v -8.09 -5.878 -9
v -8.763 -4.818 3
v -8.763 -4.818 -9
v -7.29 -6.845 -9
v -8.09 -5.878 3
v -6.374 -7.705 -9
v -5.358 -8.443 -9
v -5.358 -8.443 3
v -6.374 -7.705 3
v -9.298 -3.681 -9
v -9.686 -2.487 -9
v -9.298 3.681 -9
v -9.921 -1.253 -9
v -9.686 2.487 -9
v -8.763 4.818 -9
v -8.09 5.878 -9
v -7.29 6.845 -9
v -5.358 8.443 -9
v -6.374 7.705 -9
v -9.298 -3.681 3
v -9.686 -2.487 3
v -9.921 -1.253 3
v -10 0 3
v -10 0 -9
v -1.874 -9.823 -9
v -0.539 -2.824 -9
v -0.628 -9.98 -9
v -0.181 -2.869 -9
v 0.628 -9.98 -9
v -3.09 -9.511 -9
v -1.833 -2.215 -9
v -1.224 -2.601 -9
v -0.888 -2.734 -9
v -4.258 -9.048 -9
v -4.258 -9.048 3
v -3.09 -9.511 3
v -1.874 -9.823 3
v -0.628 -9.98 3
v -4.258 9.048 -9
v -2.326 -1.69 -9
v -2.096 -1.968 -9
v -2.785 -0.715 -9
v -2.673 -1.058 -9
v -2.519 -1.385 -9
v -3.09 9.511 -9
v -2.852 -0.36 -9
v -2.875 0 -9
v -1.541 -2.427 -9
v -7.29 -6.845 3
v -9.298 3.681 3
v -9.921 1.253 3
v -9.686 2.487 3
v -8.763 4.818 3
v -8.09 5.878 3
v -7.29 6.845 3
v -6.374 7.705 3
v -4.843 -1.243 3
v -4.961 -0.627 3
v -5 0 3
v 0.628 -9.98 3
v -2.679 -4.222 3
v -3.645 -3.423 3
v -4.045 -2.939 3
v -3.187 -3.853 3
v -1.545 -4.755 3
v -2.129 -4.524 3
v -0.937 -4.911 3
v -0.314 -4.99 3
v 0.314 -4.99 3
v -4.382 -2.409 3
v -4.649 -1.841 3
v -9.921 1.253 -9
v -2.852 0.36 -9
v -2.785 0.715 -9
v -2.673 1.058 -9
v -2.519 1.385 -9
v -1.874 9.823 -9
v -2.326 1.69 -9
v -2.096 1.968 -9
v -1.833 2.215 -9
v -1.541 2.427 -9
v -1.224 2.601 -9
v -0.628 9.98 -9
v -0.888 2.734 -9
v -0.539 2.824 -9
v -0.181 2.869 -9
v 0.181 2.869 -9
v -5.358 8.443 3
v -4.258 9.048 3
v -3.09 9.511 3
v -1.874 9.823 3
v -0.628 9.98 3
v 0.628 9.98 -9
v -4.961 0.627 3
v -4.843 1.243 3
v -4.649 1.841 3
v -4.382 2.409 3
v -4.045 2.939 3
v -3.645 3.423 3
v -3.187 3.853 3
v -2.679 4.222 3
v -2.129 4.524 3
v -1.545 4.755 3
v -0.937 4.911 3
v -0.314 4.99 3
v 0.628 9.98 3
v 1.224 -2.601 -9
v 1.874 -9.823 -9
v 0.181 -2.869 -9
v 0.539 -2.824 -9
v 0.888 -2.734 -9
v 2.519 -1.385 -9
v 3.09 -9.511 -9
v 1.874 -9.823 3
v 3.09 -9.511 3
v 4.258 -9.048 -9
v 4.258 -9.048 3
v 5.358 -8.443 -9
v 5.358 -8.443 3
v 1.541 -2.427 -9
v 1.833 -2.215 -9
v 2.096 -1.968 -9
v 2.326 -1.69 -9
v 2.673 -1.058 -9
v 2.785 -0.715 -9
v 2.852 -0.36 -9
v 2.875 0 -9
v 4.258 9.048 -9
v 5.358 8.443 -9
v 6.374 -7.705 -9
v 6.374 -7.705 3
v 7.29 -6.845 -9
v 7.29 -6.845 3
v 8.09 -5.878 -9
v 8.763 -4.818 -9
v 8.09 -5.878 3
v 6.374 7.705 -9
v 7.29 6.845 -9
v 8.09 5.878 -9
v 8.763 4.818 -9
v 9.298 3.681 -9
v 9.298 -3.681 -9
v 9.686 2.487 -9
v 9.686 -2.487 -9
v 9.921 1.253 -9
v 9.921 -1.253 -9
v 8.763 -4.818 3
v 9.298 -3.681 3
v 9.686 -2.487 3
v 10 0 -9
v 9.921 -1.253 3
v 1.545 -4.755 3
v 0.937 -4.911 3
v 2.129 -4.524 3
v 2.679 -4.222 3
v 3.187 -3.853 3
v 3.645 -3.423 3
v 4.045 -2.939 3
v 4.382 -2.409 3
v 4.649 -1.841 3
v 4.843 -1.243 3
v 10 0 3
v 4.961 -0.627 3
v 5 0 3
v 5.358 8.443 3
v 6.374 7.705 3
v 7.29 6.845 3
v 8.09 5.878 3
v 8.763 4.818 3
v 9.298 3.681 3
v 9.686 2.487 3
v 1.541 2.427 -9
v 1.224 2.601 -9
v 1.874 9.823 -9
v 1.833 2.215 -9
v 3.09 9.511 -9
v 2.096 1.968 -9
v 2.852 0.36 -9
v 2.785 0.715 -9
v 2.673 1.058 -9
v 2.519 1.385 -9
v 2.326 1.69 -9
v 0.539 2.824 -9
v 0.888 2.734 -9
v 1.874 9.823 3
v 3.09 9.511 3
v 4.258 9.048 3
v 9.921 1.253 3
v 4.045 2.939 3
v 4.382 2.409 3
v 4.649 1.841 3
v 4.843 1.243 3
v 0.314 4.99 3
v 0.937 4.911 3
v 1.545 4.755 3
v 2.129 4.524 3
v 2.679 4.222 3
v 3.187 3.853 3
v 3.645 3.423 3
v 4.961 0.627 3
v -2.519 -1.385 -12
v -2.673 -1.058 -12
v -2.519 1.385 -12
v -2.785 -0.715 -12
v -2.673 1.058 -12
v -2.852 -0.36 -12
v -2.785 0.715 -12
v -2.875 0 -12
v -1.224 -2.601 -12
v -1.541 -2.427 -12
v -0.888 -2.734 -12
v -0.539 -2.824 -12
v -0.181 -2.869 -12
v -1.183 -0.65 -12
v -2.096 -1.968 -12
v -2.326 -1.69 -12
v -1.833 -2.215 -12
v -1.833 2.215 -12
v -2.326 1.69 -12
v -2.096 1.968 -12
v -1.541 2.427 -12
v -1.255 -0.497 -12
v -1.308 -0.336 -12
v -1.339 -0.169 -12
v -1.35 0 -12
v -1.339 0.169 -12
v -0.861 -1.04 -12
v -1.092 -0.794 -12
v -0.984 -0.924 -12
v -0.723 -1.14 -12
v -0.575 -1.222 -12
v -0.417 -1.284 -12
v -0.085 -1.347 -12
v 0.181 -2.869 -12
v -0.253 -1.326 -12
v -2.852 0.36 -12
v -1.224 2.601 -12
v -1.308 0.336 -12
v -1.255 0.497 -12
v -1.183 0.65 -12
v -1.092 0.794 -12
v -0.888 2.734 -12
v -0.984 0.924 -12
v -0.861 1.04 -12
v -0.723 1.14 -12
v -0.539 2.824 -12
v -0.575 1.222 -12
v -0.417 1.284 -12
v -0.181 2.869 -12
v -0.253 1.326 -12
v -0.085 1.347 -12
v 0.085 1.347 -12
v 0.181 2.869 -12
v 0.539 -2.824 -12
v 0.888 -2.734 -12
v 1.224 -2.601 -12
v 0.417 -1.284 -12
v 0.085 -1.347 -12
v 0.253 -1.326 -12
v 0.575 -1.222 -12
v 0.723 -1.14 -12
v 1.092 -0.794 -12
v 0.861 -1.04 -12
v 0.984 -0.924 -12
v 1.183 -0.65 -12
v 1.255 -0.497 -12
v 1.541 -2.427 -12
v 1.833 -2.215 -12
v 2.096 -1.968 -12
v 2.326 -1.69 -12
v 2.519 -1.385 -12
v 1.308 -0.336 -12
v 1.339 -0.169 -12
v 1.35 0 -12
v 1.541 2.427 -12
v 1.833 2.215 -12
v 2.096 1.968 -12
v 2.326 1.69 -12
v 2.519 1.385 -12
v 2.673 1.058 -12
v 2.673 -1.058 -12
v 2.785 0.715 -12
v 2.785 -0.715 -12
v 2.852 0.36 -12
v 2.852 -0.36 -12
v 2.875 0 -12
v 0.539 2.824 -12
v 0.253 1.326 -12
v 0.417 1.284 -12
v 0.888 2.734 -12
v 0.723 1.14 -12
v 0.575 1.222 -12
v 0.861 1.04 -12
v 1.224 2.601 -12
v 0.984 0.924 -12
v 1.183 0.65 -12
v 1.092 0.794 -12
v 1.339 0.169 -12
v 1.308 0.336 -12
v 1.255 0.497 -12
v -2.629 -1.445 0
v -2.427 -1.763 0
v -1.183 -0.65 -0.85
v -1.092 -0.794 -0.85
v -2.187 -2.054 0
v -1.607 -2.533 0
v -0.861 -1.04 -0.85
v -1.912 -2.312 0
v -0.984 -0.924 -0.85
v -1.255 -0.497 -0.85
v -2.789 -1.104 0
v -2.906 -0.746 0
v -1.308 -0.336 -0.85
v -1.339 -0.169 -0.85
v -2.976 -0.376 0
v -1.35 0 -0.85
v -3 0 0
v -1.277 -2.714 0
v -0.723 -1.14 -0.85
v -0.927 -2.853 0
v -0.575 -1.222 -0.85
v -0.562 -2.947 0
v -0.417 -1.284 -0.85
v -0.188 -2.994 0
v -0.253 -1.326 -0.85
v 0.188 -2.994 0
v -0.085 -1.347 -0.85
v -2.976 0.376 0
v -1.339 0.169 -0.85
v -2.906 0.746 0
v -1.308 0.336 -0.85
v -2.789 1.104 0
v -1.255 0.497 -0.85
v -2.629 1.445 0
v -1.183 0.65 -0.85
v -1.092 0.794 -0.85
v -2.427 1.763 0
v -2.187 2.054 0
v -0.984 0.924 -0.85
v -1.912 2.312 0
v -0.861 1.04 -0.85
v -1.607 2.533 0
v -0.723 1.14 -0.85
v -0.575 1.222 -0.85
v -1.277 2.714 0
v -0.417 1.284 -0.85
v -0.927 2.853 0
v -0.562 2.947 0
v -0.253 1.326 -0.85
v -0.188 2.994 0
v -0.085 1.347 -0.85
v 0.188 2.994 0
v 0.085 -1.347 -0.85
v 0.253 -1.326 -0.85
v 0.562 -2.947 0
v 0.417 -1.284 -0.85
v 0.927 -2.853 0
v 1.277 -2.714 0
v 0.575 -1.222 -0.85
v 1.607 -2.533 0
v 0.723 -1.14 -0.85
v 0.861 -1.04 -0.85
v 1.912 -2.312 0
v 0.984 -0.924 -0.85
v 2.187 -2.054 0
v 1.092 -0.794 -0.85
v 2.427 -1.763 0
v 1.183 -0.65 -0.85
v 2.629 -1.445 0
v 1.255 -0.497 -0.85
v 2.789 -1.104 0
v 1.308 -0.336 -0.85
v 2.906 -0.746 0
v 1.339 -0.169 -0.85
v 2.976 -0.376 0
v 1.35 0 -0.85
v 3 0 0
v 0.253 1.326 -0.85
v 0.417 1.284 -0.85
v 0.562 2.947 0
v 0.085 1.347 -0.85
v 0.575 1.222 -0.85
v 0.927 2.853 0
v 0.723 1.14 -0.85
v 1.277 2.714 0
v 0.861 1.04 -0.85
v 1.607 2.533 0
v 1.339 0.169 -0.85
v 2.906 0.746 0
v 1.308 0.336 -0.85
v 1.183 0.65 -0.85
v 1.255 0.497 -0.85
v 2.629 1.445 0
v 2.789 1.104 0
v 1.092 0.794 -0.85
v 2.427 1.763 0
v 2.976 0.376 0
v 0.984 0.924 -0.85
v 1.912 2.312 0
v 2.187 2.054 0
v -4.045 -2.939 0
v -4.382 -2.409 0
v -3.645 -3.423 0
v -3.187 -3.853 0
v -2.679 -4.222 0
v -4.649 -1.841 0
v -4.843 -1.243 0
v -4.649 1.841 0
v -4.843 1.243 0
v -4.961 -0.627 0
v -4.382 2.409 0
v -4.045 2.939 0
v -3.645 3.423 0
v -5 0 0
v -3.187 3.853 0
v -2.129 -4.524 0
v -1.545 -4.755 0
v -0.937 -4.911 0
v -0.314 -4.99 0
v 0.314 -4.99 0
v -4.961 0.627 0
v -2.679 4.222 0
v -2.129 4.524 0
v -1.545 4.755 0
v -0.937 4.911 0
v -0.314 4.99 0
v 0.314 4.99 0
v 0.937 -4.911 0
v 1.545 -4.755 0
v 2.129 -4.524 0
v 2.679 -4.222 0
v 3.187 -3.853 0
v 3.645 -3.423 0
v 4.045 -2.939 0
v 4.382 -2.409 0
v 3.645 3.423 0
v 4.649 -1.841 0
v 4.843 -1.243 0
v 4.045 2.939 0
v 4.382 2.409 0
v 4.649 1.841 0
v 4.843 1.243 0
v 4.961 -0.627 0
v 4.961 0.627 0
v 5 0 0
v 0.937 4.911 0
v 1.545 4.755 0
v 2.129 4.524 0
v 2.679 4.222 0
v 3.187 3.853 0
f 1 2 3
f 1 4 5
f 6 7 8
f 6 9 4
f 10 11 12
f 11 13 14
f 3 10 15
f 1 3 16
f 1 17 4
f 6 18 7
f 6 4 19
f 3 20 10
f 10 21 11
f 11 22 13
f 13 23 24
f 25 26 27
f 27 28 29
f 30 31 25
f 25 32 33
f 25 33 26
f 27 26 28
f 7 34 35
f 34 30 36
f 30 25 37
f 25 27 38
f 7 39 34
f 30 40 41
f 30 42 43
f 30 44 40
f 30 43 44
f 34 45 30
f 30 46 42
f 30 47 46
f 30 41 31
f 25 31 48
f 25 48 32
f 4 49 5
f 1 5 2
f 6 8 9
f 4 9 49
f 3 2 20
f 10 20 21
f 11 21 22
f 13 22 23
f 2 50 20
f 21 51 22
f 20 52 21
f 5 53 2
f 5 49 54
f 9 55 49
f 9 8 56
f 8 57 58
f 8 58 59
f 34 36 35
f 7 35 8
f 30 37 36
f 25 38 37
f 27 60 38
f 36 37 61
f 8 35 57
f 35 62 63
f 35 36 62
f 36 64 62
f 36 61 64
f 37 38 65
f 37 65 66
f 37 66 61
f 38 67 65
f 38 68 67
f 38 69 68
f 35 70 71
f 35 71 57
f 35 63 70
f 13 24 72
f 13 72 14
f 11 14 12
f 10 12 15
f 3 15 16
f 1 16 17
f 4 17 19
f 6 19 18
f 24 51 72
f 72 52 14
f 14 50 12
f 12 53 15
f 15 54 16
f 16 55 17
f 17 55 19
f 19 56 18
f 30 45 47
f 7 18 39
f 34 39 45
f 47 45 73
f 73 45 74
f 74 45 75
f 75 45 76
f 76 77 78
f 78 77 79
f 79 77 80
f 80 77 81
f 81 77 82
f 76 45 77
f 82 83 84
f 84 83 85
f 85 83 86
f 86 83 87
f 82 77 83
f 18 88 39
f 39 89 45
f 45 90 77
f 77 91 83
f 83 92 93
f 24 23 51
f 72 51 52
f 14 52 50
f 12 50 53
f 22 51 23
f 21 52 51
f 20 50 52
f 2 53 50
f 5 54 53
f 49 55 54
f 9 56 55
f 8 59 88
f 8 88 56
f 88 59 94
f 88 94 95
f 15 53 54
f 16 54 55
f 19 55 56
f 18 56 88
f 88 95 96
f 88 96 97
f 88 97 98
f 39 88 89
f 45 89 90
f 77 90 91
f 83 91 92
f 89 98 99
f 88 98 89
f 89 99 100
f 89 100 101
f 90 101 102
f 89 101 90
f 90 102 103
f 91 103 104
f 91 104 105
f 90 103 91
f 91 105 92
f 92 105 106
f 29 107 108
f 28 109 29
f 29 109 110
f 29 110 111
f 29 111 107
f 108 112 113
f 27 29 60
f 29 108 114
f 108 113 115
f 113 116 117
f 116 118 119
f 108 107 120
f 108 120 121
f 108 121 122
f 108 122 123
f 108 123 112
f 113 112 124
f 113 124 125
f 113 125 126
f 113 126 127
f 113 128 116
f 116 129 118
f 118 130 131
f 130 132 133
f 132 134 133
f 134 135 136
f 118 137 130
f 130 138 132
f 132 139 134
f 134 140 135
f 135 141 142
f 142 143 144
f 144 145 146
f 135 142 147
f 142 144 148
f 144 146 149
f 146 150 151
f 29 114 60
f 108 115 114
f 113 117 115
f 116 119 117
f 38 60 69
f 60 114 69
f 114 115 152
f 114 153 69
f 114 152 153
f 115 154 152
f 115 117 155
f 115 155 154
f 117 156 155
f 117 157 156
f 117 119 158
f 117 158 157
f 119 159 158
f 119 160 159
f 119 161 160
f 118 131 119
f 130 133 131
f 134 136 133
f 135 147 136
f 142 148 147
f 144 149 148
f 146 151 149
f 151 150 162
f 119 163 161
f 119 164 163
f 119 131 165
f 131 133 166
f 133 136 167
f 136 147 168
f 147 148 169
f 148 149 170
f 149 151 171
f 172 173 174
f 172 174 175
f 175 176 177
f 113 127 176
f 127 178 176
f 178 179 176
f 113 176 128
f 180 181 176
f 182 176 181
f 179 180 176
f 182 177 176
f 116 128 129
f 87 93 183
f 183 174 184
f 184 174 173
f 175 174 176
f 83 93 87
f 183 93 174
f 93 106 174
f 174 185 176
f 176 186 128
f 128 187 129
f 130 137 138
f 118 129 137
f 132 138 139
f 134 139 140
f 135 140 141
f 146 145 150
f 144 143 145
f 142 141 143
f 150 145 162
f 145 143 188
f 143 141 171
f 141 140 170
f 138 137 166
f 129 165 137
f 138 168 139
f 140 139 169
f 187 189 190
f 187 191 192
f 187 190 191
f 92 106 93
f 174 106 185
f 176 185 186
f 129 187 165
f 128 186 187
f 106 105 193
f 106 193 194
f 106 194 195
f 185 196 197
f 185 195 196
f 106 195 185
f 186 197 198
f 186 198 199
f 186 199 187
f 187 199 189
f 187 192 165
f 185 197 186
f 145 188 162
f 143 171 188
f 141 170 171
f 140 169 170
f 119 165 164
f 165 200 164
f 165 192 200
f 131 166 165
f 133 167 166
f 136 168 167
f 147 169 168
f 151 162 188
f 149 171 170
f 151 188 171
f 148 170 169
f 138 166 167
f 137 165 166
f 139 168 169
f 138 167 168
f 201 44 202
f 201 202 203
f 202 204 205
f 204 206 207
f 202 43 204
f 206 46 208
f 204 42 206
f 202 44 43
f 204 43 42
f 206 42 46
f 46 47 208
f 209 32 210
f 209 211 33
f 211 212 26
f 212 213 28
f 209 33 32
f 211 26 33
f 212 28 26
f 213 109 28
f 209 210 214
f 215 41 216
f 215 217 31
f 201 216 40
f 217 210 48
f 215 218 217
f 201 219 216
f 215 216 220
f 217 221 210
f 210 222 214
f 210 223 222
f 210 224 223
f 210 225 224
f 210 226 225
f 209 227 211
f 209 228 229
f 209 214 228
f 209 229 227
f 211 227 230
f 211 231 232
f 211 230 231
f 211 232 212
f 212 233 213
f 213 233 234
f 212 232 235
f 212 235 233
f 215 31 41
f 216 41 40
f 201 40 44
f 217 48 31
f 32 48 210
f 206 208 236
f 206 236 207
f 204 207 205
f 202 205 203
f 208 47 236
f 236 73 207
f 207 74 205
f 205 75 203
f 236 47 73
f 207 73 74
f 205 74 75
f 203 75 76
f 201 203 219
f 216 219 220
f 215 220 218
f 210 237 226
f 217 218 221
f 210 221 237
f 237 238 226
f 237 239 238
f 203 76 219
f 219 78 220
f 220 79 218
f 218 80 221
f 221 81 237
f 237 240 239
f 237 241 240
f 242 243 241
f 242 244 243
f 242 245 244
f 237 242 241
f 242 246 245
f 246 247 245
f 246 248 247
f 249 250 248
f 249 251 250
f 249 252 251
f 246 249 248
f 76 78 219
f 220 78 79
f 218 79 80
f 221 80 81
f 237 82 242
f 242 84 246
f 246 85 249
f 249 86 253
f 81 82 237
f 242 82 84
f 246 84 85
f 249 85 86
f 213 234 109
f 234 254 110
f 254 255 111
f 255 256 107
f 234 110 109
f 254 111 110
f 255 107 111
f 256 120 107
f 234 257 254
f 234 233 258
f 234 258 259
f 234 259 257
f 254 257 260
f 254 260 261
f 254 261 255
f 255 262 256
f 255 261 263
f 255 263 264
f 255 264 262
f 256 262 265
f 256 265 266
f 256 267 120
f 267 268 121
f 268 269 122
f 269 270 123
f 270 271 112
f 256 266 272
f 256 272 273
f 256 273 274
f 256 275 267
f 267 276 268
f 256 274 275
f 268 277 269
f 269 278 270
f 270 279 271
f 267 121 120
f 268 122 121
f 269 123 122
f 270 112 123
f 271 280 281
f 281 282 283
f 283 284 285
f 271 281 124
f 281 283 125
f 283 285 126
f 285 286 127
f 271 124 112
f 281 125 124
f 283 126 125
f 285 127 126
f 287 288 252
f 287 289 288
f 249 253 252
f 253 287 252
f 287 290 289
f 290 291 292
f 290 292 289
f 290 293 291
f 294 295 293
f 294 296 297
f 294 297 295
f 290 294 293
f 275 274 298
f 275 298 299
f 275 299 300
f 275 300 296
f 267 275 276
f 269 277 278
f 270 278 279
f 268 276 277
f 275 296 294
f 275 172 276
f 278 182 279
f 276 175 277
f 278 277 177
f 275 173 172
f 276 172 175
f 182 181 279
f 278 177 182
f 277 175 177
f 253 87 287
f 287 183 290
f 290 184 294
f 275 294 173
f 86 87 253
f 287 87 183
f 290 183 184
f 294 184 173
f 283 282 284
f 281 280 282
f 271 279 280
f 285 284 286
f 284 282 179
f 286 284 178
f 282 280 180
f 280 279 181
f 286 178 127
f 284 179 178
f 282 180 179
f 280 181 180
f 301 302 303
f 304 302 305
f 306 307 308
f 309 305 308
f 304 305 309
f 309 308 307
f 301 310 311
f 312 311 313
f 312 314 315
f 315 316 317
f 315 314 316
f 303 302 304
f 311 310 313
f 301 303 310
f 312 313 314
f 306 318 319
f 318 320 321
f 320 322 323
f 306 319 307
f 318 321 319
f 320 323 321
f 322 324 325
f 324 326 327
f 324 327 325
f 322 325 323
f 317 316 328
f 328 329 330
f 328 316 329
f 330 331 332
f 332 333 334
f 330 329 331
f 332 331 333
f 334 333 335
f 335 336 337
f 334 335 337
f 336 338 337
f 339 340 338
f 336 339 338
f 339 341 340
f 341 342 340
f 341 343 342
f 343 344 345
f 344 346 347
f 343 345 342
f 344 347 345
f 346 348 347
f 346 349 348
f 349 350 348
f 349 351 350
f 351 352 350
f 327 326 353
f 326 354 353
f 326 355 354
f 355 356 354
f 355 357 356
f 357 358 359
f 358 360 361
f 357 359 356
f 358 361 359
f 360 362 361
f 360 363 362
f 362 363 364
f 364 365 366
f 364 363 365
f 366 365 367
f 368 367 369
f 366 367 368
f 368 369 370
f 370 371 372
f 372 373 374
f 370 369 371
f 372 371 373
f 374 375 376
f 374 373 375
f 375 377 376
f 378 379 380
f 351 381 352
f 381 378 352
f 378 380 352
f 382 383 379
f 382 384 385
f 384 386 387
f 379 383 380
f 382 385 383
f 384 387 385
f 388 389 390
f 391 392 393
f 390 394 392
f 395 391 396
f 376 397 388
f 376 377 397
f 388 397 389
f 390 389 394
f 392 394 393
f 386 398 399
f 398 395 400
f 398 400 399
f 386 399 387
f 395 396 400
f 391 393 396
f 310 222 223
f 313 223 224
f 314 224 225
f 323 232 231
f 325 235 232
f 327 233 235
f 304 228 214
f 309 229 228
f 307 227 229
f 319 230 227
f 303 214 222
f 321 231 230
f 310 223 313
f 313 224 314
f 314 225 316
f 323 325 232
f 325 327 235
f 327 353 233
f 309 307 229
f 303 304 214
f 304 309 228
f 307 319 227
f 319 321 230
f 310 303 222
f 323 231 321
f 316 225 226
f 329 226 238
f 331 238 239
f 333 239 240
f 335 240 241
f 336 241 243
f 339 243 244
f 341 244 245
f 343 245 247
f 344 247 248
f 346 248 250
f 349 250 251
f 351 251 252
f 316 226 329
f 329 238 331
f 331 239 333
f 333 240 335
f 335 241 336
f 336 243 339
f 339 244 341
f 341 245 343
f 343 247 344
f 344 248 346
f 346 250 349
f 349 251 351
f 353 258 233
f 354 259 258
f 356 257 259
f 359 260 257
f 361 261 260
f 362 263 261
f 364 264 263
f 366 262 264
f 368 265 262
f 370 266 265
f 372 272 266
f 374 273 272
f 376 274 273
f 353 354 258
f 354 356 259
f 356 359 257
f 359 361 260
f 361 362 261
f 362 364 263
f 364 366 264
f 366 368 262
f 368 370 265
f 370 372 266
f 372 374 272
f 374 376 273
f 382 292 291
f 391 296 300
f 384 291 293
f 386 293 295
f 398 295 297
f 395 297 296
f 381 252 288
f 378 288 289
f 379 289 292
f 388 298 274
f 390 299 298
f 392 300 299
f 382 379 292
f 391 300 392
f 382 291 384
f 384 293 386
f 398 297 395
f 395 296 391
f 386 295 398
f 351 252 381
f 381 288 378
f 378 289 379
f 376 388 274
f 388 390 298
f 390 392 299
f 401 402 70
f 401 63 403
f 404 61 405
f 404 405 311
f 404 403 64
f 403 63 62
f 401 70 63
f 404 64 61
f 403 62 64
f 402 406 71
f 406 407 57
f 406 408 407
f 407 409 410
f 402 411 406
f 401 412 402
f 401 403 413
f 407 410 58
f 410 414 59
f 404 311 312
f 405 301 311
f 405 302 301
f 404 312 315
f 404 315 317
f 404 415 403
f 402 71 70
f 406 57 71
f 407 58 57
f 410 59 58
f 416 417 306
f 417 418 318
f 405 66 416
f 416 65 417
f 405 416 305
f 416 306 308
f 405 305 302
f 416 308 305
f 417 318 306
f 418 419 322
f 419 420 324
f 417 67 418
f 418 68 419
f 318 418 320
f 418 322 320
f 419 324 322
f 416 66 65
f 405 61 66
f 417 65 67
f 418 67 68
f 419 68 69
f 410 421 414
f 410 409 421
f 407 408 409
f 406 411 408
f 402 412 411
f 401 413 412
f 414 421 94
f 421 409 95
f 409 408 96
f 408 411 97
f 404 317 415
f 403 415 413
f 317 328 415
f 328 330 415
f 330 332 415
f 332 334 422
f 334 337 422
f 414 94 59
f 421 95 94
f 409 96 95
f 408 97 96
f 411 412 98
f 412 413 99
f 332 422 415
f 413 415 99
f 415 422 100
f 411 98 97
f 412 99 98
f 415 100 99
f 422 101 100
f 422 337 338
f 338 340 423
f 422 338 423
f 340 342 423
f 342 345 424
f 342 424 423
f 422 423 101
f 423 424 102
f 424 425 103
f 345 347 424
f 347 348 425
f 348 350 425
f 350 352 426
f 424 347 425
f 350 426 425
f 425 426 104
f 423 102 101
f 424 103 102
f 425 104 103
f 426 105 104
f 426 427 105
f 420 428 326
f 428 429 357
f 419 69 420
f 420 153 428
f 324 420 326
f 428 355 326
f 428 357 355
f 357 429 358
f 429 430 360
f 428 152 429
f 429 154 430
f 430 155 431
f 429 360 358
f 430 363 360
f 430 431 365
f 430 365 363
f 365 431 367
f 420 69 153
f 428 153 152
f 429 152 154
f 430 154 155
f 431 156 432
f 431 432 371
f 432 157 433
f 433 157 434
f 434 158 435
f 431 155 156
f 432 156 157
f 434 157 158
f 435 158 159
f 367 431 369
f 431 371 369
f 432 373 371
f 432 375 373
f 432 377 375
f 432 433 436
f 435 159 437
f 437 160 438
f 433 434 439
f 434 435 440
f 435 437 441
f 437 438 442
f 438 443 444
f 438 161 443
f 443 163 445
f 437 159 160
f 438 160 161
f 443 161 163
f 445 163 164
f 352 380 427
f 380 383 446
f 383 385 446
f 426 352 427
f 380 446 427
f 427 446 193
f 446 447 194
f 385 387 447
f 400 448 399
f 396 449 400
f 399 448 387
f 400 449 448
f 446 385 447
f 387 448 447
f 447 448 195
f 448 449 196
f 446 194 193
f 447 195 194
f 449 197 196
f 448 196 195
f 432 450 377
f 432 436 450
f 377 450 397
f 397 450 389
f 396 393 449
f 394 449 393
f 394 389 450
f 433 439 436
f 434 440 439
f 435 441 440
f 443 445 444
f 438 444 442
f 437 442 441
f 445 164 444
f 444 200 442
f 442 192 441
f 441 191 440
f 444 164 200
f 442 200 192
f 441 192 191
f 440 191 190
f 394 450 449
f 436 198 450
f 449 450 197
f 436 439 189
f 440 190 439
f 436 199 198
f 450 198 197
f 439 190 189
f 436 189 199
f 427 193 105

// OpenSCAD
$fn = 50;


difference() {
	union() {
		translate(v = [0, 0, -9.0000000000]) {
			cylinder(h = 12, r = 10.0000000000);
		}
		#translate(v = [0, 0, -12.0000000000]) {
			cylinder(h = 12, r = 2.8750000000);
		}
	}
	union() {
		translate(v = [0, 0, 0]) {
			rotate(a = [0, 0, 0]) {
				difference() {
					union() {
						translate(v = [0, 0, -12.0000000000]) {
							cylinder(h = 12, r = 1.0000000000);
						}
						translate(v = [0, 0, -0.8500000000]) {
							cylinder(h = 0.8500000000, r1 = 1.3500000000, r2 = 3.0000000000);
						}
						translate(v = [0, 0, -12.0000000000]) {
							cylinder(h = 12, r = 1.3500000000);
						}
						translate(v = [0, 0, -12.0000000000]) {
							cylinder(h = 12, r = 1.0000000000);
						}
					}
					union();
				}
			}
		}
		#cylinder(h = 3, r = 5.0000000000);
	}
}
